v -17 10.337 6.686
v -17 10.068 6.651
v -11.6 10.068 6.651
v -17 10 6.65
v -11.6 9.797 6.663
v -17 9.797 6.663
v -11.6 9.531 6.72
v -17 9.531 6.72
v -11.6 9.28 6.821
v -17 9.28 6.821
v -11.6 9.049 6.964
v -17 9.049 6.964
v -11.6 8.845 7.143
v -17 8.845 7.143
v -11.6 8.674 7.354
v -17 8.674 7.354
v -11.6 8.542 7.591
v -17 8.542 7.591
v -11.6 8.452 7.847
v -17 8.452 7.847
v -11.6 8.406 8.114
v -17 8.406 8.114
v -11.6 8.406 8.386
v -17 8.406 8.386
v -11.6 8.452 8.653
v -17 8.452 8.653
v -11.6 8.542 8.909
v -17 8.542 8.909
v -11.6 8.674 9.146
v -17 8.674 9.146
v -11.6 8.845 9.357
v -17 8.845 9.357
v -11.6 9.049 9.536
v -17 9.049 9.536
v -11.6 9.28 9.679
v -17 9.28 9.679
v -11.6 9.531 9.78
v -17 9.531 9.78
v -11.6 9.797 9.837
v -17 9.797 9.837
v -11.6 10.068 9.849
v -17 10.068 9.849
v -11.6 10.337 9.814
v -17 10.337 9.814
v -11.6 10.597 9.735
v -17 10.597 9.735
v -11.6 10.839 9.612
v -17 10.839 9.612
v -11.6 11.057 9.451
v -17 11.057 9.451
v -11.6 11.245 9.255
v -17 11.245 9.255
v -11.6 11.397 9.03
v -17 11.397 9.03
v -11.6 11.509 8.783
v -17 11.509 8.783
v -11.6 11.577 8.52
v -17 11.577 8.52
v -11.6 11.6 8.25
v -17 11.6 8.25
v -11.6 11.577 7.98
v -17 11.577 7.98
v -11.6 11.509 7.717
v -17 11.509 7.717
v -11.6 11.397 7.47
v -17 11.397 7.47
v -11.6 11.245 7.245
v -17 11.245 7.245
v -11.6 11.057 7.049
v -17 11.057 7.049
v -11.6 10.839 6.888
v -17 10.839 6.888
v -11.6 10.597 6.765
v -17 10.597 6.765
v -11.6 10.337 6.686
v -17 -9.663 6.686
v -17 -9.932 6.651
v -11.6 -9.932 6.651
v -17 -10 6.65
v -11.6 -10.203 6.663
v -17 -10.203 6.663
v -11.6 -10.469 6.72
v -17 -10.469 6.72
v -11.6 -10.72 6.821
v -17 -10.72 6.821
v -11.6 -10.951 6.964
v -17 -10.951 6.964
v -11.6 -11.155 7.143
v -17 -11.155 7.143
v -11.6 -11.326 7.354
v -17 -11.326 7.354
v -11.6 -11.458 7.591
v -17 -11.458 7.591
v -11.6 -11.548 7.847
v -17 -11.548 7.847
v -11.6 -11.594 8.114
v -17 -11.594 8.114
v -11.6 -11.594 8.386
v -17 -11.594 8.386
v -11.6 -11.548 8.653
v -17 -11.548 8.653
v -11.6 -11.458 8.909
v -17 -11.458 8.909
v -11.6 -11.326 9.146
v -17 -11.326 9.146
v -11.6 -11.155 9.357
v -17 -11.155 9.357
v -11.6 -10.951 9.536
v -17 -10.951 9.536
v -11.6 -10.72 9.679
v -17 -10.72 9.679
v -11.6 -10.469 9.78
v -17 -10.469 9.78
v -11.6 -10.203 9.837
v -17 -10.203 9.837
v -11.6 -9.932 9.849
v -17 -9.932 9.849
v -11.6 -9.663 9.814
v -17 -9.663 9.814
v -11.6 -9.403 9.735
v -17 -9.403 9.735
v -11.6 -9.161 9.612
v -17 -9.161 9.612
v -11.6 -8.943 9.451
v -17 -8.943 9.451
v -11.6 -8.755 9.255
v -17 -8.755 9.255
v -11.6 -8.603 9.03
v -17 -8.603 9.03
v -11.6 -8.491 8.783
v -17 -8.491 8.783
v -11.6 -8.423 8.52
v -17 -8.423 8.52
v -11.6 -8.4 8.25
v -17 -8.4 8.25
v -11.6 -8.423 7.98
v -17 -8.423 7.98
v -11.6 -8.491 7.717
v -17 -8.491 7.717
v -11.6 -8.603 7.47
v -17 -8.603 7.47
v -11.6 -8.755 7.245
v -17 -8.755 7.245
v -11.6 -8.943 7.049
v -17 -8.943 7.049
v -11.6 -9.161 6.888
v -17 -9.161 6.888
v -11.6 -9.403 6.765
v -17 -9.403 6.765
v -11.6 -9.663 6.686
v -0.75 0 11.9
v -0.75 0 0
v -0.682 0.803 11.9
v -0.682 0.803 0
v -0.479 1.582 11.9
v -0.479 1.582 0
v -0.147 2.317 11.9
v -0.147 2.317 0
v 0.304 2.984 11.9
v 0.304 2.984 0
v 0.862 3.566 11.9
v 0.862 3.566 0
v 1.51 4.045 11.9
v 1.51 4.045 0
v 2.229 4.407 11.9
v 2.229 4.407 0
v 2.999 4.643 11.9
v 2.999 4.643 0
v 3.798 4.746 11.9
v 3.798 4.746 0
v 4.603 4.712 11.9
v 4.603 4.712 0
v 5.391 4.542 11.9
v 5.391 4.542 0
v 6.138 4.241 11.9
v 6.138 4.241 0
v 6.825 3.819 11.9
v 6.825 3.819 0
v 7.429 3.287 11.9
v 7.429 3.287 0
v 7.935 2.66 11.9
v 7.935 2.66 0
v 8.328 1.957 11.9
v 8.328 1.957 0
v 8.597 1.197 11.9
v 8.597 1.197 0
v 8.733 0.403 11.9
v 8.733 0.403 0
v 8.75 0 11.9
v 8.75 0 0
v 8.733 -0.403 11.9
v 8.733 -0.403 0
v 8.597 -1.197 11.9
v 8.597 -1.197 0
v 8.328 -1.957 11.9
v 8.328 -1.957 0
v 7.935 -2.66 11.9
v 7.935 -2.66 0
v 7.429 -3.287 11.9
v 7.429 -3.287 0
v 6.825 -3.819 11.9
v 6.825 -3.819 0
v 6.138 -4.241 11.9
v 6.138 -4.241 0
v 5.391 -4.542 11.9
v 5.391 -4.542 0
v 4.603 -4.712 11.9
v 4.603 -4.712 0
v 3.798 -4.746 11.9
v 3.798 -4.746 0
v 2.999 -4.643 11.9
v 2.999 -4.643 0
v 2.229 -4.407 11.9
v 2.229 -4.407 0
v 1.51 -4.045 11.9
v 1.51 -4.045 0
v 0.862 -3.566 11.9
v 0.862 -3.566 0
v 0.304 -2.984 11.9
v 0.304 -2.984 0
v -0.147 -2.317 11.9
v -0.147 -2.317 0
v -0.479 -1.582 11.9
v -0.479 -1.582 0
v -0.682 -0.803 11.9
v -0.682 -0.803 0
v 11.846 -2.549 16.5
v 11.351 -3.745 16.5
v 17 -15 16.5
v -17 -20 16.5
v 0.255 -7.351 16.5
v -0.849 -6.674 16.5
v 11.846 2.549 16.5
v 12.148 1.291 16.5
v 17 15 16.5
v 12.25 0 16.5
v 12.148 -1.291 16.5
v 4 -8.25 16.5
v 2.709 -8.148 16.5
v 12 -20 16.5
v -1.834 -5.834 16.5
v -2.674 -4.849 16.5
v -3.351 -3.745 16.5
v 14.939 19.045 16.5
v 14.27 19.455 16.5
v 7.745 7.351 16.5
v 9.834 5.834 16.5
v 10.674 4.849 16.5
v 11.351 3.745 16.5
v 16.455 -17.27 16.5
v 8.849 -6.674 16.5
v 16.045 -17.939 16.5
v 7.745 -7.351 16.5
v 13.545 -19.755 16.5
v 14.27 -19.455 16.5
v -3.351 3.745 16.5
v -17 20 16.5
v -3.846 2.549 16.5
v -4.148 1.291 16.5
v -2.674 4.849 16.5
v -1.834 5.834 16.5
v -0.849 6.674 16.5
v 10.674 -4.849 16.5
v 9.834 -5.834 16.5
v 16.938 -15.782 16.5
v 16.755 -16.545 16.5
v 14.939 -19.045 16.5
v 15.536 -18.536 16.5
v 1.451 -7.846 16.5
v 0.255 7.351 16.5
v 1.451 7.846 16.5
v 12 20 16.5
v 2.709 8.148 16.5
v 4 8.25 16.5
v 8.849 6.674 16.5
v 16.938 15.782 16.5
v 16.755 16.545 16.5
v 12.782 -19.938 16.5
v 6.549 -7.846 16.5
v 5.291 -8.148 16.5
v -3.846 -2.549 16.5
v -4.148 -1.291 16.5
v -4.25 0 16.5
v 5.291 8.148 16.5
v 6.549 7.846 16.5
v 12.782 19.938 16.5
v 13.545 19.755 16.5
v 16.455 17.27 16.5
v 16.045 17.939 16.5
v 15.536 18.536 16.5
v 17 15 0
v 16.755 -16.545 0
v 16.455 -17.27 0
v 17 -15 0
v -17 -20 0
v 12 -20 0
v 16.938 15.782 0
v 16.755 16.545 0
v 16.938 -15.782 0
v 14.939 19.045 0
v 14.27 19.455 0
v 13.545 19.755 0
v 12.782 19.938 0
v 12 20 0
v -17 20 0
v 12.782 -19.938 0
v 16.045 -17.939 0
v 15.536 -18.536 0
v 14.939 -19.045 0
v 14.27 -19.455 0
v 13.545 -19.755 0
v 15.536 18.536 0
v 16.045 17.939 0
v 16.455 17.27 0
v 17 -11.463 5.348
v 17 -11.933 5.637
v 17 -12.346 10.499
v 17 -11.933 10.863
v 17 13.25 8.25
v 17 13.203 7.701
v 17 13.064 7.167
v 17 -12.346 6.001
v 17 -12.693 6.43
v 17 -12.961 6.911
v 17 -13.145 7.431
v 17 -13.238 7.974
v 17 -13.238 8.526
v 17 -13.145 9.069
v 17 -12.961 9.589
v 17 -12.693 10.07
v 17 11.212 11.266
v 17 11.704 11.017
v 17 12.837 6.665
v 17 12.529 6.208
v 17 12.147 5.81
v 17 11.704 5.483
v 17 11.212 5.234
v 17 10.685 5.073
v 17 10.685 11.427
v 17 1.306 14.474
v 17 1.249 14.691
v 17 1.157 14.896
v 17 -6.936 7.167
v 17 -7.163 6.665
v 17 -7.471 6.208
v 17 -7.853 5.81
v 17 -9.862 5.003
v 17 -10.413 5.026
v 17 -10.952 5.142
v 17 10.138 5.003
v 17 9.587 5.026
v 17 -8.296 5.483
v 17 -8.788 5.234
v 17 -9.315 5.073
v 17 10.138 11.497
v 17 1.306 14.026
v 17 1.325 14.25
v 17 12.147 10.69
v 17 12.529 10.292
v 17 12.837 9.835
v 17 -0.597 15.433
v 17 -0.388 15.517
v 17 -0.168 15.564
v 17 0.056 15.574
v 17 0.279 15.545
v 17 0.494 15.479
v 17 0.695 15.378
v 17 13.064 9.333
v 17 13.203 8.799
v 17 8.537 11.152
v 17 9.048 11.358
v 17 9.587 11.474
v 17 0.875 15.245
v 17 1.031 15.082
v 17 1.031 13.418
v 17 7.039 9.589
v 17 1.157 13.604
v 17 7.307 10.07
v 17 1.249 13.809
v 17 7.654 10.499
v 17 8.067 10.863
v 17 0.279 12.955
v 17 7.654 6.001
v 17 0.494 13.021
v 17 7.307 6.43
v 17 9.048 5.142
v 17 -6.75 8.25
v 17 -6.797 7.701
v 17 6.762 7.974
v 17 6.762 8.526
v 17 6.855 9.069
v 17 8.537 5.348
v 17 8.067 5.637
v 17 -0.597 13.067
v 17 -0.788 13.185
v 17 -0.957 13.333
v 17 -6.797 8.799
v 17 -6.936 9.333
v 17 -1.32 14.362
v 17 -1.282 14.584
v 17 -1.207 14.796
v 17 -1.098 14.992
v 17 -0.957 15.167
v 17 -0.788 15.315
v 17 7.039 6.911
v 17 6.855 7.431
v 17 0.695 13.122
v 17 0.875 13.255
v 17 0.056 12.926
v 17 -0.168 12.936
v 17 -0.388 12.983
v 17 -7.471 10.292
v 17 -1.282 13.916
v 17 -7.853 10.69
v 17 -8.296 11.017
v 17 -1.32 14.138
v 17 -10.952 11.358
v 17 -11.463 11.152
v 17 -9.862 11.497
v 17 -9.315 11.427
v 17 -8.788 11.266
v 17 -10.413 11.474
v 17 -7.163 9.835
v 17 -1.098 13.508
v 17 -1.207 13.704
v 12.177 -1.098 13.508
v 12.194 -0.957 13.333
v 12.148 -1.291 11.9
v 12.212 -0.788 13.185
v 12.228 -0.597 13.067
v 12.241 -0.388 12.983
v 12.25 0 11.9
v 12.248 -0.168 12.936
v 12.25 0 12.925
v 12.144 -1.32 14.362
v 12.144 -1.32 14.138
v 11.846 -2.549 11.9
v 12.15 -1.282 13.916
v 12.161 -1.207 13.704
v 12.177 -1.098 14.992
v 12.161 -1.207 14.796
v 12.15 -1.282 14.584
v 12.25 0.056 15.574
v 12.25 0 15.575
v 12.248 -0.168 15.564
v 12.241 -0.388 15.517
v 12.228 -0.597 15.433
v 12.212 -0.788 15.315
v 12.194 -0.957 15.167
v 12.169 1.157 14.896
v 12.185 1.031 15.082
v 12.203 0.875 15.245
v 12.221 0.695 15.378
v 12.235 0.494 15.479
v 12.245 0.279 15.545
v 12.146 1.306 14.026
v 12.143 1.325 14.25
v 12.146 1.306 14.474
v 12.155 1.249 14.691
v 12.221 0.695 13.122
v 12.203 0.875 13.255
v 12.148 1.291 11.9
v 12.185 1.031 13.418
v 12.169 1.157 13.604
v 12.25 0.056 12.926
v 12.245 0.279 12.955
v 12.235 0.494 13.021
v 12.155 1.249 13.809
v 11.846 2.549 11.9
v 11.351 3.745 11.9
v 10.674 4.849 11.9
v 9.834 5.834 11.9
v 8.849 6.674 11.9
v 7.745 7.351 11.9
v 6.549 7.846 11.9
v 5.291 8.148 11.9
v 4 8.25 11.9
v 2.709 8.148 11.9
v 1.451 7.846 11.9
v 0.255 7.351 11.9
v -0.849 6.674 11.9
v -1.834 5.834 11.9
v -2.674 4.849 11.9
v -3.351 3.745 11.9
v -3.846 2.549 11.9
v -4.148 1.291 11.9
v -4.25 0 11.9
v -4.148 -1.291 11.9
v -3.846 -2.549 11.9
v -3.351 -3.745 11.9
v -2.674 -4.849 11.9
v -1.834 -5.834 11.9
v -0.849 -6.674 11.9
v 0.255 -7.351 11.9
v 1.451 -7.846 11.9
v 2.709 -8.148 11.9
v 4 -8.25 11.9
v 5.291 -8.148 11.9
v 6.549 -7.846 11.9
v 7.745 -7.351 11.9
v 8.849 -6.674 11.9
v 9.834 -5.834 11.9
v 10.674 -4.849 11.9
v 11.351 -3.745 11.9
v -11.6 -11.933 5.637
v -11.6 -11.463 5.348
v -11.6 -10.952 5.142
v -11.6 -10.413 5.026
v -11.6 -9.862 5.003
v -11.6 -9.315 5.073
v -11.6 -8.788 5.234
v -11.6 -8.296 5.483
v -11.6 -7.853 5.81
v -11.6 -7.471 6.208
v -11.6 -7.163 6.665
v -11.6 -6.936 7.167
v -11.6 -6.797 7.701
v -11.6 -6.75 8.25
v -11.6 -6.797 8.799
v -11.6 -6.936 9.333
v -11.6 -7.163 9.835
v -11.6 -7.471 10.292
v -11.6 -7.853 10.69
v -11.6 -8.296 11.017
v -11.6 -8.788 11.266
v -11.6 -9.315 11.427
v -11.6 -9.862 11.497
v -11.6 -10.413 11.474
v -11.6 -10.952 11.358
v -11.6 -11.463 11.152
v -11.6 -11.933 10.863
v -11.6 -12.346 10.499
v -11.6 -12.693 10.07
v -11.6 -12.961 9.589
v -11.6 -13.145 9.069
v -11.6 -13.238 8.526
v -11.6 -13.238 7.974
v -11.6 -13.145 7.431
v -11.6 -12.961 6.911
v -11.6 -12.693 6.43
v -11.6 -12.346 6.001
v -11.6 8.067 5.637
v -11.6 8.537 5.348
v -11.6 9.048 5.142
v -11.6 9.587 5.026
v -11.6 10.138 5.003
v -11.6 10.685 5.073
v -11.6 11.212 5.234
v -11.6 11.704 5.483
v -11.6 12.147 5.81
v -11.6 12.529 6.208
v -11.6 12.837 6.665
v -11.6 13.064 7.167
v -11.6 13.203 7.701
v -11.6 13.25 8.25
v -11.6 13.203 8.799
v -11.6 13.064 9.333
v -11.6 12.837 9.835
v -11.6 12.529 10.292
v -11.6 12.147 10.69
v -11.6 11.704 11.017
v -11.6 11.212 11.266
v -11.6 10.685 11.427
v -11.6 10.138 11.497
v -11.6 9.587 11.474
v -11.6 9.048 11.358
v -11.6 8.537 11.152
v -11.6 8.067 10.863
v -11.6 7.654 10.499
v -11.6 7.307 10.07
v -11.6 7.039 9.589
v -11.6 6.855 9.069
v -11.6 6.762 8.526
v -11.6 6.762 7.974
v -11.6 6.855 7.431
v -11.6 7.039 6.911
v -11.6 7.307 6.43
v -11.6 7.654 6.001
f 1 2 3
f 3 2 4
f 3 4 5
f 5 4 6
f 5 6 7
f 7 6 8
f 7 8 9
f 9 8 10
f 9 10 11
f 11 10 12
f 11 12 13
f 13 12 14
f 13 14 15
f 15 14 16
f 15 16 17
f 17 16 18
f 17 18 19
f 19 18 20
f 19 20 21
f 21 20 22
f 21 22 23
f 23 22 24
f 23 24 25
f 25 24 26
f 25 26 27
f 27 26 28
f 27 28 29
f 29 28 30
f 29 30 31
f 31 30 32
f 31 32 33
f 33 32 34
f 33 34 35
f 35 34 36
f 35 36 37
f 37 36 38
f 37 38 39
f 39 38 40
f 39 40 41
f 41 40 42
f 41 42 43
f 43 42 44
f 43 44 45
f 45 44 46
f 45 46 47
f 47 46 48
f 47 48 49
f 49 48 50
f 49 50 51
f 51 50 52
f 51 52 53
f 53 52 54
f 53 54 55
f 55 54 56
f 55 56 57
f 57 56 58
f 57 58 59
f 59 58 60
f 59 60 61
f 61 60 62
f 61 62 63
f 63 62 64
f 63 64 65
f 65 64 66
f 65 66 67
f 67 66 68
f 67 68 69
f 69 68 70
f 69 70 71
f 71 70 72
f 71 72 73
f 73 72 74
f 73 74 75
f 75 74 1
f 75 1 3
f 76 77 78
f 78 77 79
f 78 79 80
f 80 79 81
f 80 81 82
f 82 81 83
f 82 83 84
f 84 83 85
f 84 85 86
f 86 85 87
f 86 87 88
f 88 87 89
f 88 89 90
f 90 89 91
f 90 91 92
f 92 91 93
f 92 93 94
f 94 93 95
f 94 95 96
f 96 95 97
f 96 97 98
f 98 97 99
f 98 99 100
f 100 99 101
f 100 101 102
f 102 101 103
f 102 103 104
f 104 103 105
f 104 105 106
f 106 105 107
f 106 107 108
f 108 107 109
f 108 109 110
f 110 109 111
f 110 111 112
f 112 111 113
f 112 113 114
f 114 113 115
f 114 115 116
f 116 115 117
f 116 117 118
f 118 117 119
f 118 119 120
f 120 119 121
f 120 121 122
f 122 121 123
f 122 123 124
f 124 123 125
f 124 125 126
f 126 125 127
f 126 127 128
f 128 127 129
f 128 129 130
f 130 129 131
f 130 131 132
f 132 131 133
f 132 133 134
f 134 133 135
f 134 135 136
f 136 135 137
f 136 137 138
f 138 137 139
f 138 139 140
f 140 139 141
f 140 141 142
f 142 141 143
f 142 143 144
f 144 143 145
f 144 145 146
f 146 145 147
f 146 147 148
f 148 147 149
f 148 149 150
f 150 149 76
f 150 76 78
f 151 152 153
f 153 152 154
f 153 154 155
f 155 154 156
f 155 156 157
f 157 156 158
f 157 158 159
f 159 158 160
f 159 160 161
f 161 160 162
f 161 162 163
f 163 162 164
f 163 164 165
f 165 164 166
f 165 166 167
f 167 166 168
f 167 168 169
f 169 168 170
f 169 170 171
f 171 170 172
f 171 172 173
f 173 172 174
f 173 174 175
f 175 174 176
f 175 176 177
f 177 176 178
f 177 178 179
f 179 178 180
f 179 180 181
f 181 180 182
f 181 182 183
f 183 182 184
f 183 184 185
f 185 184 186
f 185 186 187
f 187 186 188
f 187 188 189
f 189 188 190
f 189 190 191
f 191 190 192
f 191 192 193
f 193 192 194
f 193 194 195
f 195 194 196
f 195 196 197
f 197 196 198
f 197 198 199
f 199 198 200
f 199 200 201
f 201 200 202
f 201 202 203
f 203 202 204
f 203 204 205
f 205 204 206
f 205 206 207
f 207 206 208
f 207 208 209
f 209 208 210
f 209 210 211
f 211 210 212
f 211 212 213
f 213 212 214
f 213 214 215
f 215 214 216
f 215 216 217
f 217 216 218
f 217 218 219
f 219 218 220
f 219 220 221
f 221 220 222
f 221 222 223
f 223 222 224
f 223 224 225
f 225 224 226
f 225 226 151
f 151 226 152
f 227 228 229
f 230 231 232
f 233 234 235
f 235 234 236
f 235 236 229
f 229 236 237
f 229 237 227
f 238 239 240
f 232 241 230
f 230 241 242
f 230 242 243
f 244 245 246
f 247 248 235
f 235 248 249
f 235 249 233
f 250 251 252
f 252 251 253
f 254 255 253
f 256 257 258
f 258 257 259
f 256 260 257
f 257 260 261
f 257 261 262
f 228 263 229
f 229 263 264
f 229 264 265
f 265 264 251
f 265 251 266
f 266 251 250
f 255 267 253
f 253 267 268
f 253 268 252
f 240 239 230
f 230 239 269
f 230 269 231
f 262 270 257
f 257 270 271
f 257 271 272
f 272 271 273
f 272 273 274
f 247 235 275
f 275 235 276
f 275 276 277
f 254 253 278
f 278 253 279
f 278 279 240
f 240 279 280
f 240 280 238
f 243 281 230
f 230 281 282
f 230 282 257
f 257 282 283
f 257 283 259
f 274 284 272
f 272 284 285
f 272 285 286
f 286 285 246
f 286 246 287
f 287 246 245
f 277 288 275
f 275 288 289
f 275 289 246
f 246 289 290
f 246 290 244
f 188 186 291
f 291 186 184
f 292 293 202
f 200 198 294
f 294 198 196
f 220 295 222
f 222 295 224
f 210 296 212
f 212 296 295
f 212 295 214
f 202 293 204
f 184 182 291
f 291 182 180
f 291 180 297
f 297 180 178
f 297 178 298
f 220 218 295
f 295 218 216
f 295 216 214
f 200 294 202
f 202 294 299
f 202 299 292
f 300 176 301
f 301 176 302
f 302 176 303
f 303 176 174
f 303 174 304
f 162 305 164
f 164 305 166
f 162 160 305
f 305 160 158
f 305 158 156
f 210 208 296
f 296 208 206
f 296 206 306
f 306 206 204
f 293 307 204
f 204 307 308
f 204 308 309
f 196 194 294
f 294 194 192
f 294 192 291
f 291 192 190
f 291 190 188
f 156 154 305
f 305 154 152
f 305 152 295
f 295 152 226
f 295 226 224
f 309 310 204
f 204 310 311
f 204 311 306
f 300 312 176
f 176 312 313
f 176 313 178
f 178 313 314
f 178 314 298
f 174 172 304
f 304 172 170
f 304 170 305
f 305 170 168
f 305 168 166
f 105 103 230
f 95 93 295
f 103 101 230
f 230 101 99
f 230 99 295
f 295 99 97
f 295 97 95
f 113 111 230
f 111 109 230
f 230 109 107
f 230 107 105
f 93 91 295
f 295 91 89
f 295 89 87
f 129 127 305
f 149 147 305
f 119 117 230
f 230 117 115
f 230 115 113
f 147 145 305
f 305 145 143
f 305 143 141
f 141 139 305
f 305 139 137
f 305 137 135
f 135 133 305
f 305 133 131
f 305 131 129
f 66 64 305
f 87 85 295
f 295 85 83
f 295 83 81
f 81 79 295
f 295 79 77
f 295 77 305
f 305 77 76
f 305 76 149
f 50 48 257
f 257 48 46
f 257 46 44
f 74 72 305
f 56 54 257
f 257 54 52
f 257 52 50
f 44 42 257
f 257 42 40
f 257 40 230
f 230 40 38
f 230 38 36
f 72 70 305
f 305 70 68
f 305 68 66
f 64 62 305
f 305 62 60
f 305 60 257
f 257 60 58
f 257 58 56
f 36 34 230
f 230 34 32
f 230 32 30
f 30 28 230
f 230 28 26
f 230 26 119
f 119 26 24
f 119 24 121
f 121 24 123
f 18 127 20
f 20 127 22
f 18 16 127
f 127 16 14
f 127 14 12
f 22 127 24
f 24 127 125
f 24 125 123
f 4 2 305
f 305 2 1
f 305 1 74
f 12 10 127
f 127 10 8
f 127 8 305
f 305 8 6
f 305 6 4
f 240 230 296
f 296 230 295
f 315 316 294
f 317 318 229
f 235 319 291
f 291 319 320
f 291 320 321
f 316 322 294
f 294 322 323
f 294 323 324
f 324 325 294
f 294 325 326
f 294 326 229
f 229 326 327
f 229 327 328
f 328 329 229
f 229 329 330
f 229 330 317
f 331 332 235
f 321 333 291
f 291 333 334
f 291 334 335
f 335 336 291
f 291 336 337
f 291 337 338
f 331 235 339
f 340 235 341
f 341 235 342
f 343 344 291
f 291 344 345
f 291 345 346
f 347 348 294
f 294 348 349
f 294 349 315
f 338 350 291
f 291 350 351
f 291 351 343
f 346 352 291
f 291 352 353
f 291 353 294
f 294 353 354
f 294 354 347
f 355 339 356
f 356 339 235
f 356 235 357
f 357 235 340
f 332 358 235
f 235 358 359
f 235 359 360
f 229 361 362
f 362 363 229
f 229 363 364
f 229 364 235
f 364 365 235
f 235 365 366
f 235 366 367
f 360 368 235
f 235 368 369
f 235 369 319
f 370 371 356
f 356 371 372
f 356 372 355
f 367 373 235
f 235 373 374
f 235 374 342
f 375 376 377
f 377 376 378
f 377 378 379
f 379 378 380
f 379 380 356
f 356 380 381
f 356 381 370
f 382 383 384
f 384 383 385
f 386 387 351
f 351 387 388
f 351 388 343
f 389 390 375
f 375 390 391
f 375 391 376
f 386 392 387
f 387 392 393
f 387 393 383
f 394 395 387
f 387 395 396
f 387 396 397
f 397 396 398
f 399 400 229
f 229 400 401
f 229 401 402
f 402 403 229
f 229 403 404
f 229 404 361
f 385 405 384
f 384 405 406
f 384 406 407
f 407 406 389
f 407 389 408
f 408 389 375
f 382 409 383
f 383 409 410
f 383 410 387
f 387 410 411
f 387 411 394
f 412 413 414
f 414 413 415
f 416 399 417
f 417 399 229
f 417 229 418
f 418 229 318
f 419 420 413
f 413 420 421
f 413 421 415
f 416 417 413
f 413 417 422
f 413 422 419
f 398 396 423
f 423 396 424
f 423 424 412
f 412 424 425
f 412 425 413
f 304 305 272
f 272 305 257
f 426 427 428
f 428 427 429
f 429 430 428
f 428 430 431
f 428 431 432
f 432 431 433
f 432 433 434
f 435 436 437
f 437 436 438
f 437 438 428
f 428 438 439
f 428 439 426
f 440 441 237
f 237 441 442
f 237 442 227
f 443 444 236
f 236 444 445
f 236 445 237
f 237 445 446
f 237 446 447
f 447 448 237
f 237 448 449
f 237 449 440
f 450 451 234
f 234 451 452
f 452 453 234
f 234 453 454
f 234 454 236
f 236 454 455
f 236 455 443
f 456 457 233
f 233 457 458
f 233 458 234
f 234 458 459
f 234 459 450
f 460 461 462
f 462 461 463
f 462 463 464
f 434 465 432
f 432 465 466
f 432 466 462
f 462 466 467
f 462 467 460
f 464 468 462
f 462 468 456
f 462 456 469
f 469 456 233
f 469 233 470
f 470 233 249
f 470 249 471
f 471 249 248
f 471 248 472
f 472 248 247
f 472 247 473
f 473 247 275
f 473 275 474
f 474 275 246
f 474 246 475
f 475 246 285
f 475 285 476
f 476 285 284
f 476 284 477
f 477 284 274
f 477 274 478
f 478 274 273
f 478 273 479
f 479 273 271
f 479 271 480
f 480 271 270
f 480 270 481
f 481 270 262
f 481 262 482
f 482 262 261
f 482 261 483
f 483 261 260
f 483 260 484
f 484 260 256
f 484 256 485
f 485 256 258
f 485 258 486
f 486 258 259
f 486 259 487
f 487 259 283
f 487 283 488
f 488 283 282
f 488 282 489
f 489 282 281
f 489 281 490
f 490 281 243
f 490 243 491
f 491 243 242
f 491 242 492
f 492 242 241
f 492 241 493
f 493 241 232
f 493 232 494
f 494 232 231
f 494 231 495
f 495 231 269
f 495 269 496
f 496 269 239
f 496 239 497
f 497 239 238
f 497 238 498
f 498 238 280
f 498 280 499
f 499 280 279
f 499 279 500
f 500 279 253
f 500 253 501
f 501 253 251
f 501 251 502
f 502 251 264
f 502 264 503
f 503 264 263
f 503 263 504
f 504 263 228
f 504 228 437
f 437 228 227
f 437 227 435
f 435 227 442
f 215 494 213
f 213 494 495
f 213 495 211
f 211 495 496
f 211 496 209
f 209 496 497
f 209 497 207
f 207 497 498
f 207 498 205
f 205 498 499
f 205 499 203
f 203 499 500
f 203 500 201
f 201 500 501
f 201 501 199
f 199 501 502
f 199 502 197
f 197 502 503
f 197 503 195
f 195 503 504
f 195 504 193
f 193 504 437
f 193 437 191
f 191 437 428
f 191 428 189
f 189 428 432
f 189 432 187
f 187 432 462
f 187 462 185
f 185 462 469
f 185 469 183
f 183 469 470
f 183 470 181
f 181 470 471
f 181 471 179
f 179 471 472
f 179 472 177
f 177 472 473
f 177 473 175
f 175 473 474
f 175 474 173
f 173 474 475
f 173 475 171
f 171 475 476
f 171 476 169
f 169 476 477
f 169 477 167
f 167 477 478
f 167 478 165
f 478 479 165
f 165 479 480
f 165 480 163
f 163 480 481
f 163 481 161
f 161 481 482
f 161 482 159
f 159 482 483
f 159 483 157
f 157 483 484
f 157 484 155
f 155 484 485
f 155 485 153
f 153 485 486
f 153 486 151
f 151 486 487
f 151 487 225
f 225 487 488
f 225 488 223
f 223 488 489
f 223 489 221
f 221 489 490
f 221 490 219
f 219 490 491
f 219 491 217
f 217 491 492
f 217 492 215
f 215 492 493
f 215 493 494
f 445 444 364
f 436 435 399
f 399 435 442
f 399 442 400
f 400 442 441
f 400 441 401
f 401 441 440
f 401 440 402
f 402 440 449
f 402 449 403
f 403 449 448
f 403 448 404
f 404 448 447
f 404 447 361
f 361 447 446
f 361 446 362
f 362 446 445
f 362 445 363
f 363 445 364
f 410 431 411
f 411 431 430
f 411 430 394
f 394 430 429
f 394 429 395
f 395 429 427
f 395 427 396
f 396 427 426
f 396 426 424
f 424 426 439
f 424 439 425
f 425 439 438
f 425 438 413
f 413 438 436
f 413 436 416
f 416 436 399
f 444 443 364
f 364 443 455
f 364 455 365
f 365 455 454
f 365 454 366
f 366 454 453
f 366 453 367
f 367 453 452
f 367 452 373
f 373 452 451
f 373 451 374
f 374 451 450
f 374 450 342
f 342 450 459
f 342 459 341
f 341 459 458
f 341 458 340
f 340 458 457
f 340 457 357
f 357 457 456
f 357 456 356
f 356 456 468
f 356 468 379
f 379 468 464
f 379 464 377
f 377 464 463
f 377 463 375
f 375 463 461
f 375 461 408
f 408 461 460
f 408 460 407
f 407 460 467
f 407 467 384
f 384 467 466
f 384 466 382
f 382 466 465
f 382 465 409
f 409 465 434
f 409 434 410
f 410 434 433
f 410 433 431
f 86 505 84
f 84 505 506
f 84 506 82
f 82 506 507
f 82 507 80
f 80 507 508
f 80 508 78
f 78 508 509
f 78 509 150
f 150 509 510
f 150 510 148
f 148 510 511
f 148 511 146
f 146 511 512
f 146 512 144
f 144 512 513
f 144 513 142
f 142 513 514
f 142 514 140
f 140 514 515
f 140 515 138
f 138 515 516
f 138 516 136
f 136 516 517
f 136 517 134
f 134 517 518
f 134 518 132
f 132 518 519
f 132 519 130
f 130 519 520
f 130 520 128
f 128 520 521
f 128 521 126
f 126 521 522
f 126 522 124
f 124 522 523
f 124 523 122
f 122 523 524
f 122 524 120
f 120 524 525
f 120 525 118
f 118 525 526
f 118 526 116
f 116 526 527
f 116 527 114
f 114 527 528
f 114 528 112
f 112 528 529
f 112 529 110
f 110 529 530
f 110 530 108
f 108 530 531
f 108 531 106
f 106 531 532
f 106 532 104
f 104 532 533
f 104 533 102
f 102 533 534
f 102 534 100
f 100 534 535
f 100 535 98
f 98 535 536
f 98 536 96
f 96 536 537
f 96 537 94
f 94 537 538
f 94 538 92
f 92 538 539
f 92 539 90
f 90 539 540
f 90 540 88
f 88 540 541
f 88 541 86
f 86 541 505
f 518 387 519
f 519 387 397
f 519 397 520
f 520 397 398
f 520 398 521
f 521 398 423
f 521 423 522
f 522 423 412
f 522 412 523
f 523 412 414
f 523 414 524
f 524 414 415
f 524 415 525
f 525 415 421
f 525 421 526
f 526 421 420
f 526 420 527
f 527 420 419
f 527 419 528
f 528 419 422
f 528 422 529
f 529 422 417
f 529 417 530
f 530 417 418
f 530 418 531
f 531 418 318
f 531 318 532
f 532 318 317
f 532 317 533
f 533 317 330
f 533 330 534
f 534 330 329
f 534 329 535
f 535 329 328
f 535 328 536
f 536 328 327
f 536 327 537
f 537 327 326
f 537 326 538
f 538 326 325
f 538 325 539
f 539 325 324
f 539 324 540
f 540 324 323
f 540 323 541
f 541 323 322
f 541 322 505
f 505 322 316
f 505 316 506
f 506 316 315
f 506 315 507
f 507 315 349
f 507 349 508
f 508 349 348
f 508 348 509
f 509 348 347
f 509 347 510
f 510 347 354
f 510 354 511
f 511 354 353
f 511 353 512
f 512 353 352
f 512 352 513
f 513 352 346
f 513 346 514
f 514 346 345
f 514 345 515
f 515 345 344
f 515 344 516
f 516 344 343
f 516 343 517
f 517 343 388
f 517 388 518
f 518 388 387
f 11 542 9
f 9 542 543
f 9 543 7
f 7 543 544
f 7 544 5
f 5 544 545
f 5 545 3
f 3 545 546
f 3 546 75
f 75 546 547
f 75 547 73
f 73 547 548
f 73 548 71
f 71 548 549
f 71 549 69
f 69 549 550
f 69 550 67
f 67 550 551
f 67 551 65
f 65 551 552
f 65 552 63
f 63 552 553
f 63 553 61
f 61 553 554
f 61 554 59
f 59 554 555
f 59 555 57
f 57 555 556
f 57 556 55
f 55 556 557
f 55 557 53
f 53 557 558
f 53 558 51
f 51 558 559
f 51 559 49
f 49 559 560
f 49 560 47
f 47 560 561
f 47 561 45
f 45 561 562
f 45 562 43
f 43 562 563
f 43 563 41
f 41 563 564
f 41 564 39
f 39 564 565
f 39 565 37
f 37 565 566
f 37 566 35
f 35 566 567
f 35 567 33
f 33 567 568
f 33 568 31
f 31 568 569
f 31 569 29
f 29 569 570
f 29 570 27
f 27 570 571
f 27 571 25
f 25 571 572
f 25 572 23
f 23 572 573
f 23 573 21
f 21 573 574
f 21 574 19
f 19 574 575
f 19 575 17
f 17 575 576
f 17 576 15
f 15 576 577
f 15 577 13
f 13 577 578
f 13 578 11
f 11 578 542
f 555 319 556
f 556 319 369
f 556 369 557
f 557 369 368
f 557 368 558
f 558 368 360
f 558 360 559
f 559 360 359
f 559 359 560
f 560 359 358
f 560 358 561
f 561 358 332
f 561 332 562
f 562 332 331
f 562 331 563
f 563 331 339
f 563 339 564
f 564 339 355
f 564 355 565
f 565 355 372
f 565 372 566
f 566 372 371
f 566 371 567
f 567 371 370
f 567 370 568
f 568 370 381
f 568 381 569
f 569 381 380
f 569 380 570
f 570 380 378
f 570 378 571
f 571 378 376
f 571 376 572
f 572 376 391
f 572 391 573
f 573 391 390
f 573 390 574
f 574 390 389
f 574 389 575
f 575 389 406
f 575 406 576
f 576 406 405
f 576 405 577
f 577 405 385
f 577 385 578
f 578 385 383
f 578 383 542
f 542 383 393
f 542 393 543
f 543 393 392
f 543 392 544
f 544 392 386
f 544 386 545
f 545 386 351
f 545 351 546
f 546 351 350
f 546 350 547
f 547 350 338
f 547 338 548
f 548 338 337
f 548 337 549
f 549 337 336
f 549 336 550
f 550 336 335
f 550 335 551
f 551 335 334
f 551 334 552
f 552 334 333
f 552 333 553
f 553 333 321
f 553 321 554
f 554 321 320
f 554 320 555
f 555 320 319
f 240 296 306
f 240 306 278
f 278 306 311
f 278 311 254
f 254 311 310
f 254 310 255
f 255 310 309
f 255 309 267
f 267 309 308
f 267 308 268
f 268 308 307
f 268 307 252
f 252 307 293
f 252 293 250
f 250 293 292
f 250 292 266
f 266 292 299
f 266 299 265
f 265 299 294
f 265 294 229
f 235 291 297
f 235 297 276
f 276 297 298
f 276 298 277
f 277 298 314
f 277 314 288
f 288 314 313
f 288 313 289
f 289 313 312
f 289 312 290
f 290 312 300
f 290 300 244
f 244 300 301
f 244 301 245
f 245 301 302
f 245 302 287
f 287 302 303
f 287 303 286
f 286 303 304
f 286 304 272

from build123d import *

# Parameters (mm, degrees)
CROQUIS1_W              = 34
CROQUIS1_H              = 40
CROQUIS1_R              = 4.75
SALIENTE_EXTRUIR1_DEPTH = 16.5
CROQUIS2_R              = 8.25
CORTAR_EXTRUIR1_DEPTH   = 4.6
CROQUIS3_R              = 1.325
CORTAR_EXTRUIR2_DEPTH   = 5.6
CORTAR_EXTRUIR3_REACH   = 44.758
CROQUIS4_R              = 1.6
CROQUIS5_R              = 3.25
CORTAR_EXTRUIR4_DEPTH   = 28.6
REDONDEO1_R             = 5


with BuildPart() as part:
    # Croquis1 → Saliente-Extruir1 (new body)
    with BuildSketch(Plane.XY):
        Rectangle(CROQUIS1_W, CROQUIS1_H)
        with Locations((4, 0)):
            Circle(CROQUIS1_R, mode=Mode.SUBTRACT)
    extrude(amount=SALIENTE_EXTRUIR1_DEPTH)

    # Croquis2 → Cortar-Extruir1 (cut)
    with BuildSketch(Plane.XY.offset(16.5)):
        with Locations((4, 0)):
            Circle(CROQUIS2_R)
    extrude(amount=-CORTAR_EXTRUIR1_DEPTH, mode=Mode.SUBTRACT)

    # Croquis3 → Cortar-Extruir2 (cut)
    with BuildSketch(Plane(origin=(17, 0, 0), x_dir=(0, 0, -1), z_dir=(1, 0, 0))):
        with Locations(Location((-14.25, 0, 0), (0, 0, 90))):
            Circle(CROQUIS3_R)
    extrude(amount=-CORTAR_EXTRUIR2_DEPTH, mode=Mode.SUBTRACT)

    # Croquis4 → Cortar-Extruir3 (cut, up to next)
    with BuildSketch(Plane(origin=(17, 0, 0), x_dir=(0, 0, -1), z_dir=(1, 0, 0)), mode=Mode.PRIVATE) as cortar_extruir3_sk1:
        with Locations(Location((-8.25, -10, 0), (0, 0, 90))):
            Circle(CROQUIS4_R)
    cortar_extruir3_tool1 = extrude(cortar_extruir3_sk1.sketch, amount=-CORTAR_EXTRUIR3_REACH, mode=Mode.PRIVATE) & part.part
    # Croquis4 → Cortar-Extruir3 (cut, up to next)
    with BuildSketch(Plane(origin=(17, 0, 0), x_dir=(0, 0, -1), z_dir=(1, 0, 0)), mode=Mode.PRIVATE) as cortar_extruir3_sk2:
        with Locations(Location((-8.25, 10, 0), (0, 0, 90))):
            Circle(CROQUIS4_R)
    cortar_extruir3_tool2 = extrude(cortar_extruir3_sk2.sketch, amount=-CORTAR_EXTRUIR3_REACH, mode=Mode.PRIVATE) & part.part
    add(cortar_extruir3_tool1.solids().sort_by_distance((17, -10, 8.25))[0], mode=Mode.SUBTRACT)
    add(cortar_extruir3_tool2.solids().sort_by_distance((17, 10, 8.25))[0], mode=Mode.SUBTRACT)

    # Croquis5 → Cortar-Extruir4 (cut)
    with BuildSketch(Plane(origin=(17, 0, 0), x_dir=(0, 0, -1), z_dir=(1, 0, 0))):
        with Locations(Location((-8.25, -10, 0), (0, 0, 90))):
            Circle(CROQUIS5_R)
        with Locations(Location((-8.25, 10, 0), (0, 0, 90))):
            Circle(CROQUIS5_R)
    extrude(amount=-CORTAR_EXTRUIR4_DEPTH, mode=Mode.SUBTRACT)

    # Redondeo1
    redondeo1_edges = [part.edges().sort_by_distance(p)[0] for p in [
        (17, 20, 8.25),
        (17, -20, 8.25),
    ]]
    fillet(redondeo1_edges, radius=REDONDEO1_R)


solid = part.part
